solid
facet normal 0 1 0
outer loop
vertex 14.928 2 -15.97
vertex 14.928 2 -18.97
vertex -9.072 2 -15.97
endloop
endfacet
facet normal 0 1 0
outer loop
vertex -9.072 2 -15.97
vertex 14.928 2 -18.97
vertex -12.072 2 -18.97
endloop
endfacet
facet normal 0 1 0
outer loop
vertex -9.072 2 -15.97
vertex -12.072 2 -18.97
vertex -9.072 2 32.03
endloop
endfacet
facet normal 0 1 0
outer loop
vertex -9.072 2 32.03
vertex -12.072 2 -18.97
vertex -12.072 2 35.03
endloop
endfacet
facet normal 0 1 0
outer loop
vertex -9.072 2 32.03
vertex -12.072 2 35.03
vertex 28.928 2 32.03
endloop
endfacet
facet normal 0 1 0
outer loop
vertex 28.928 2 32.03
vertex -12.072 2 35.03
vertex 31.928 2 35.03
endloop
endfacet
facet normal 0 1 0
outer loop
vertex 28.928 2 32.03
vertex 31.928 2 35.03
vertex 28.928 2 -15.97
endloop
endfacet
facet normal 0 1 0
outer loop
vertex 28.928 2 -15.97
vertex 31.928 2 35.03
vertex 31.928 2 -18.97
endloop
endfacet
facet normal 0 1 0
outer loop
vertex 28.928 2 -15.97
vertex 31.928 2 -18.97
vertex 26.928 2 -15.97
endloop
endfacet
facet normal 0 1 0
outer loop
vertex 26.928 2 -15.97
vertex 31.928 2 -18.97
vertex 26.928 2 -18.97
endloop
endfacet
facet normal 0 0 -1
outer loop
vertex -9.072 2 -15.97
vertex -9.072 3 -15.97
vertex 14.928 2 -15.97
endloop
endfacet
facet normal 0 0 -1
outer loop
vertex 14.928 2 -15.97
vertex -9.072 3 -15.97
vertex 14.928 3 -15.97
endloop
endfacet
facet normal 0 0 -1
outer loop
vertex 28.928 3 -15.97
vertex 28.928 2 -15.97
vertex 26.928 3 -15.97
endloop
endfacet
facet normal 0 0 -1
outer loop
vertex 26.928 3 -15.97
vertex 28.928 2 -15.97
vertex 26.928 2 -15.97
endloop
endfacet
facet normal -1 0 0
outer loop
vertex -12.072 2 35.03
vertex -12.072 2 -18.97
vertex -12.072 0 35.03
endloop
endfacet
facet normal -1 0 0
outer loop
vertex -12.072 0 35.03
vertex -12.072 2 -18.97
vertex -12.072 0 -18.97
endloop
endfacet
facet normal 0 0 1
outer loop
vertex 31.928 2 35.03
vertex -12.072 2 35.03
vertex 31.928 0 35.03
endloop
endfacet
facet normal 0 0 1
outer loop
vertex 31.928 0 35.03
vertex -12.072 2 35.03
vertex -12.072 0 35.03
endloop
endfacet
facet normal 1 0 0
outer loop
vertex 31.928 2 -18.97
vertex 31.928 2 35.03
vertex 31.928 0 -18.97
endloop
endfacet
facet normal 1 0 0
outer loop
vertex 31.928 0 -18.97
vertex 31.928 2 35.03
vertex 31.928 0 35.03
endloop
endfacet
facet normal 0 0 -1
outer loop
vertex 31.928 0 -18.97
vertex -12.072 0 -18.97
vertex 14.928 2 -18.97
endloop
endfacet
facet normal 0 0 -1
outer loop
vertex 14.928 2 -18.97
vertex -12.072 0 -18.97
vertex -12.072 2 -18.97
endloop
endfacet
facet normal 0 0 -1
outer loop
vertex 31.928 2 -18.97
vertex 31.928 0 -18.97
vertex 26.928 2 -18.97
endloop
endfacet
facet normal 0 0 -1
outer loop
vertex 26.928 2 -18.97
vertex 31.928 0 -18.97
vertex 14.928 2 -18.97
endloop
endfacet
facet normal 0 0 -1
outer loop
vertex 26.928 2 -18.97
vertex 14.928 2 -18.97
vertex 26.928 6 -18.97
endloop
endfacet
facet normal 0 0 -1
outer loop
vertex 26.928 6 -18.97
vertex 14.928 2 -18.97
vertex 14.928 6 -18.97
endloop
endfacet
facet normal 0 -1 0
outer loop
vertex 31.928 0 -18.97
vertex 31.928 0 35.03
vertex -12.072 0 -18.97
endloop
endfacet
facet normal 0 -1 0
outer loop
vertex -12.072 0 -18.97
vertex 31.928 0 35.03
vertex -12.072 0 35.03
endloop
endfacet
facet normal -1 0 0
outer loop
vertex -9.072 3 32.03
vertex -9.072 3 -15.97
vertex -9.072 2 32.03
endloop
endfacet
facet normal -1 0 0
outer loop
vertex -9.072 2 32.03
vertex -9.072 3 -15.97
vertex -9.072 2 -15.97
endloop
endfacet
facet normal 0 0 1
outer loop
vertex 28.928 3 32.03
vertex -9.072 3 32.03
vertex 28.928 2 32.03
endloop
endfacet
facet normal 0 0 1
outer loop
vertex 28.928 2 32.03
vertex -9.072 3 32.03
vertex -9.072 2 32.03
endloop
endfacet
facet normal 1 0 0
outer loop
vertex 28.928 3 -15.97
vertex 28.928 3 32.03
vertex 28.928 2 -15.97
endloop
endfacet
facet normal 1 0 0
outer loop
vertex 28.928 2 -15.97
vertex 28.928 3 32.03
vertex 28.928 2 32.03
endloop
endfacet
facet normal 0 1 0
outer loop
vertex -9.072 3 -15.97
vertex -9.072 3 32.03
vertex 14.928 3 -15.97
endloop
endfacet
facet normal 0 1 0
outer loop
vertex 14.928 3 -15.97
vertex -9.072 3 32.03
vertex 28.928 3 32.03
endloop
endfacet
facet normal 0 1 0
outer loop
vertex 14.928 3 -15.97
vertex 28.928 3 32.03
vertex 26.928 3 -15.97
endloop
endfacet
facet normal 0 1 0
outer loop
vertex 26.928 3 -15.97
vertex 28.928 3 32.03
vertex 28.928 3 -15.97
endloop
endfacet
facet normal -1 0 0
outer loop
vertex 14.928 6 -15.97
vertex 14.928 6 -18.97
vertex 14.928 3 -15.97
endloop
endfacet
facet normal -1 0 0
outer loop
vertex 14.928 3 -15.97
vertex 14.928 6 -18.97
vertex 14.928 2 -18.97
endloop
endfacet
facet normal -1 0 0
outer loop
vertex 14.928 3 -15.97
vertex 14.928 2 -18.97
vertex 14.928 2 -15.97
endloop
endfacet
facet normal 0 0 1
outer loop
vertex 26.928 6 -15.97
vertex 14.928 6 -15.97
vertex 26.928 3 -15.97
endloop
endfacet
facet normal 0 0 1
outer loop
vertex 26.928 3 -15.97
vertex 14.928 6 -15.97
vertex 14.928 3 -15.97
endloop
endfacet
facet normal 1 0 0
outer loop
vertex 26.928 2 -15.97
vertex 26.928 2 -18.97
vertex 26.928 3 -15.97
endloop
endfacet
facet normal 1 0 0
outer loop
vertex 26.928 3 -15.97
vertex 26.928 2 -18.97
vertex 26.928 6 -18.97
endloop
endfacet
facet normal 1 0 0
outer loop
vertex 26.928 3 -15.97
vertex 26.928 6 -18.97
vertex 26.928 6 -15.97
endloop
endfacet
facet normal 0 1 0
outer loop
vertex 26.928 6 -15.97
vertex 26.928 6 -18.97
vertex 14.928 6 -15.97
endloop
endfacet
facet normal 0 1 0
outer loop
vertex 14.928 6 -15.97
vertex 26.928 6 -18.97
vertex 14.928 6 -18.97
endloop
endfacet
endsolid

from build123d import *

# Parameters (mm, degrees)
SCHIZZO1_W                   = 44
SCHIZZO1_H                   = 54
ESTRUSIONE_ESTRUSIONE1_DEPTH = 2
SCHIZZO2_W                   = 38
SCHIZZO2_H                   = 48
ESTRUSIONE_ESTRUSIONE2_DEPTH = 1
SCHIZZO3_W                   = 12
SCHIZZO3_H                   = 3
ESTRUSIONE_ESTRUSIONE3_DEPTH = 4


with BuildPart() as part:
    # Schizzo1 → Estrusione-Estrusione1 (new body)
    with BuildSketch(Plane(origin=(0, 0, 0), x_dir=(1, 0, 0), z_dir=(0, 1, 0))):
        with Locations((9.928073705, -8.029830108)):
            Rectangle(SCHIZZO1_W, SCHIZZO1_H)
    extrude(amount=ESTRUSIONE_ESTRUSIONE1_DEPTH)

    # Schizzo2 → Estrusione-Estrusione2 (add)
    with BuildSketch(Plane(origin=(0, 2, 0), x_dir=(1, 0, 0), z_dir=(0, 1, 0))):
        with Locations((9.928073705, -8.029830108)):
            Rectangle(SCHIZZO2_W, SCHIZZO2_H)
    extrude(amount=ESTRUSIONE_ESTRUSIONE2_DEPTH)

    # Schizzo3 → Estrusione-Estrusione3 (add)
    with BuildSketch(Plane(origin=(0, 2, 0), x_dir=(1, 0, 0), z_dir=(0, 1, 0))):
        with Locations((20.928073705, 17.470169892)):
            Rectangle(SCHIZZO3_W, SCHIZZO3_H)
    extrude(amount=ESTRUSIONE_ESTRUSIONE3_DEPTH)


solid = part.part
